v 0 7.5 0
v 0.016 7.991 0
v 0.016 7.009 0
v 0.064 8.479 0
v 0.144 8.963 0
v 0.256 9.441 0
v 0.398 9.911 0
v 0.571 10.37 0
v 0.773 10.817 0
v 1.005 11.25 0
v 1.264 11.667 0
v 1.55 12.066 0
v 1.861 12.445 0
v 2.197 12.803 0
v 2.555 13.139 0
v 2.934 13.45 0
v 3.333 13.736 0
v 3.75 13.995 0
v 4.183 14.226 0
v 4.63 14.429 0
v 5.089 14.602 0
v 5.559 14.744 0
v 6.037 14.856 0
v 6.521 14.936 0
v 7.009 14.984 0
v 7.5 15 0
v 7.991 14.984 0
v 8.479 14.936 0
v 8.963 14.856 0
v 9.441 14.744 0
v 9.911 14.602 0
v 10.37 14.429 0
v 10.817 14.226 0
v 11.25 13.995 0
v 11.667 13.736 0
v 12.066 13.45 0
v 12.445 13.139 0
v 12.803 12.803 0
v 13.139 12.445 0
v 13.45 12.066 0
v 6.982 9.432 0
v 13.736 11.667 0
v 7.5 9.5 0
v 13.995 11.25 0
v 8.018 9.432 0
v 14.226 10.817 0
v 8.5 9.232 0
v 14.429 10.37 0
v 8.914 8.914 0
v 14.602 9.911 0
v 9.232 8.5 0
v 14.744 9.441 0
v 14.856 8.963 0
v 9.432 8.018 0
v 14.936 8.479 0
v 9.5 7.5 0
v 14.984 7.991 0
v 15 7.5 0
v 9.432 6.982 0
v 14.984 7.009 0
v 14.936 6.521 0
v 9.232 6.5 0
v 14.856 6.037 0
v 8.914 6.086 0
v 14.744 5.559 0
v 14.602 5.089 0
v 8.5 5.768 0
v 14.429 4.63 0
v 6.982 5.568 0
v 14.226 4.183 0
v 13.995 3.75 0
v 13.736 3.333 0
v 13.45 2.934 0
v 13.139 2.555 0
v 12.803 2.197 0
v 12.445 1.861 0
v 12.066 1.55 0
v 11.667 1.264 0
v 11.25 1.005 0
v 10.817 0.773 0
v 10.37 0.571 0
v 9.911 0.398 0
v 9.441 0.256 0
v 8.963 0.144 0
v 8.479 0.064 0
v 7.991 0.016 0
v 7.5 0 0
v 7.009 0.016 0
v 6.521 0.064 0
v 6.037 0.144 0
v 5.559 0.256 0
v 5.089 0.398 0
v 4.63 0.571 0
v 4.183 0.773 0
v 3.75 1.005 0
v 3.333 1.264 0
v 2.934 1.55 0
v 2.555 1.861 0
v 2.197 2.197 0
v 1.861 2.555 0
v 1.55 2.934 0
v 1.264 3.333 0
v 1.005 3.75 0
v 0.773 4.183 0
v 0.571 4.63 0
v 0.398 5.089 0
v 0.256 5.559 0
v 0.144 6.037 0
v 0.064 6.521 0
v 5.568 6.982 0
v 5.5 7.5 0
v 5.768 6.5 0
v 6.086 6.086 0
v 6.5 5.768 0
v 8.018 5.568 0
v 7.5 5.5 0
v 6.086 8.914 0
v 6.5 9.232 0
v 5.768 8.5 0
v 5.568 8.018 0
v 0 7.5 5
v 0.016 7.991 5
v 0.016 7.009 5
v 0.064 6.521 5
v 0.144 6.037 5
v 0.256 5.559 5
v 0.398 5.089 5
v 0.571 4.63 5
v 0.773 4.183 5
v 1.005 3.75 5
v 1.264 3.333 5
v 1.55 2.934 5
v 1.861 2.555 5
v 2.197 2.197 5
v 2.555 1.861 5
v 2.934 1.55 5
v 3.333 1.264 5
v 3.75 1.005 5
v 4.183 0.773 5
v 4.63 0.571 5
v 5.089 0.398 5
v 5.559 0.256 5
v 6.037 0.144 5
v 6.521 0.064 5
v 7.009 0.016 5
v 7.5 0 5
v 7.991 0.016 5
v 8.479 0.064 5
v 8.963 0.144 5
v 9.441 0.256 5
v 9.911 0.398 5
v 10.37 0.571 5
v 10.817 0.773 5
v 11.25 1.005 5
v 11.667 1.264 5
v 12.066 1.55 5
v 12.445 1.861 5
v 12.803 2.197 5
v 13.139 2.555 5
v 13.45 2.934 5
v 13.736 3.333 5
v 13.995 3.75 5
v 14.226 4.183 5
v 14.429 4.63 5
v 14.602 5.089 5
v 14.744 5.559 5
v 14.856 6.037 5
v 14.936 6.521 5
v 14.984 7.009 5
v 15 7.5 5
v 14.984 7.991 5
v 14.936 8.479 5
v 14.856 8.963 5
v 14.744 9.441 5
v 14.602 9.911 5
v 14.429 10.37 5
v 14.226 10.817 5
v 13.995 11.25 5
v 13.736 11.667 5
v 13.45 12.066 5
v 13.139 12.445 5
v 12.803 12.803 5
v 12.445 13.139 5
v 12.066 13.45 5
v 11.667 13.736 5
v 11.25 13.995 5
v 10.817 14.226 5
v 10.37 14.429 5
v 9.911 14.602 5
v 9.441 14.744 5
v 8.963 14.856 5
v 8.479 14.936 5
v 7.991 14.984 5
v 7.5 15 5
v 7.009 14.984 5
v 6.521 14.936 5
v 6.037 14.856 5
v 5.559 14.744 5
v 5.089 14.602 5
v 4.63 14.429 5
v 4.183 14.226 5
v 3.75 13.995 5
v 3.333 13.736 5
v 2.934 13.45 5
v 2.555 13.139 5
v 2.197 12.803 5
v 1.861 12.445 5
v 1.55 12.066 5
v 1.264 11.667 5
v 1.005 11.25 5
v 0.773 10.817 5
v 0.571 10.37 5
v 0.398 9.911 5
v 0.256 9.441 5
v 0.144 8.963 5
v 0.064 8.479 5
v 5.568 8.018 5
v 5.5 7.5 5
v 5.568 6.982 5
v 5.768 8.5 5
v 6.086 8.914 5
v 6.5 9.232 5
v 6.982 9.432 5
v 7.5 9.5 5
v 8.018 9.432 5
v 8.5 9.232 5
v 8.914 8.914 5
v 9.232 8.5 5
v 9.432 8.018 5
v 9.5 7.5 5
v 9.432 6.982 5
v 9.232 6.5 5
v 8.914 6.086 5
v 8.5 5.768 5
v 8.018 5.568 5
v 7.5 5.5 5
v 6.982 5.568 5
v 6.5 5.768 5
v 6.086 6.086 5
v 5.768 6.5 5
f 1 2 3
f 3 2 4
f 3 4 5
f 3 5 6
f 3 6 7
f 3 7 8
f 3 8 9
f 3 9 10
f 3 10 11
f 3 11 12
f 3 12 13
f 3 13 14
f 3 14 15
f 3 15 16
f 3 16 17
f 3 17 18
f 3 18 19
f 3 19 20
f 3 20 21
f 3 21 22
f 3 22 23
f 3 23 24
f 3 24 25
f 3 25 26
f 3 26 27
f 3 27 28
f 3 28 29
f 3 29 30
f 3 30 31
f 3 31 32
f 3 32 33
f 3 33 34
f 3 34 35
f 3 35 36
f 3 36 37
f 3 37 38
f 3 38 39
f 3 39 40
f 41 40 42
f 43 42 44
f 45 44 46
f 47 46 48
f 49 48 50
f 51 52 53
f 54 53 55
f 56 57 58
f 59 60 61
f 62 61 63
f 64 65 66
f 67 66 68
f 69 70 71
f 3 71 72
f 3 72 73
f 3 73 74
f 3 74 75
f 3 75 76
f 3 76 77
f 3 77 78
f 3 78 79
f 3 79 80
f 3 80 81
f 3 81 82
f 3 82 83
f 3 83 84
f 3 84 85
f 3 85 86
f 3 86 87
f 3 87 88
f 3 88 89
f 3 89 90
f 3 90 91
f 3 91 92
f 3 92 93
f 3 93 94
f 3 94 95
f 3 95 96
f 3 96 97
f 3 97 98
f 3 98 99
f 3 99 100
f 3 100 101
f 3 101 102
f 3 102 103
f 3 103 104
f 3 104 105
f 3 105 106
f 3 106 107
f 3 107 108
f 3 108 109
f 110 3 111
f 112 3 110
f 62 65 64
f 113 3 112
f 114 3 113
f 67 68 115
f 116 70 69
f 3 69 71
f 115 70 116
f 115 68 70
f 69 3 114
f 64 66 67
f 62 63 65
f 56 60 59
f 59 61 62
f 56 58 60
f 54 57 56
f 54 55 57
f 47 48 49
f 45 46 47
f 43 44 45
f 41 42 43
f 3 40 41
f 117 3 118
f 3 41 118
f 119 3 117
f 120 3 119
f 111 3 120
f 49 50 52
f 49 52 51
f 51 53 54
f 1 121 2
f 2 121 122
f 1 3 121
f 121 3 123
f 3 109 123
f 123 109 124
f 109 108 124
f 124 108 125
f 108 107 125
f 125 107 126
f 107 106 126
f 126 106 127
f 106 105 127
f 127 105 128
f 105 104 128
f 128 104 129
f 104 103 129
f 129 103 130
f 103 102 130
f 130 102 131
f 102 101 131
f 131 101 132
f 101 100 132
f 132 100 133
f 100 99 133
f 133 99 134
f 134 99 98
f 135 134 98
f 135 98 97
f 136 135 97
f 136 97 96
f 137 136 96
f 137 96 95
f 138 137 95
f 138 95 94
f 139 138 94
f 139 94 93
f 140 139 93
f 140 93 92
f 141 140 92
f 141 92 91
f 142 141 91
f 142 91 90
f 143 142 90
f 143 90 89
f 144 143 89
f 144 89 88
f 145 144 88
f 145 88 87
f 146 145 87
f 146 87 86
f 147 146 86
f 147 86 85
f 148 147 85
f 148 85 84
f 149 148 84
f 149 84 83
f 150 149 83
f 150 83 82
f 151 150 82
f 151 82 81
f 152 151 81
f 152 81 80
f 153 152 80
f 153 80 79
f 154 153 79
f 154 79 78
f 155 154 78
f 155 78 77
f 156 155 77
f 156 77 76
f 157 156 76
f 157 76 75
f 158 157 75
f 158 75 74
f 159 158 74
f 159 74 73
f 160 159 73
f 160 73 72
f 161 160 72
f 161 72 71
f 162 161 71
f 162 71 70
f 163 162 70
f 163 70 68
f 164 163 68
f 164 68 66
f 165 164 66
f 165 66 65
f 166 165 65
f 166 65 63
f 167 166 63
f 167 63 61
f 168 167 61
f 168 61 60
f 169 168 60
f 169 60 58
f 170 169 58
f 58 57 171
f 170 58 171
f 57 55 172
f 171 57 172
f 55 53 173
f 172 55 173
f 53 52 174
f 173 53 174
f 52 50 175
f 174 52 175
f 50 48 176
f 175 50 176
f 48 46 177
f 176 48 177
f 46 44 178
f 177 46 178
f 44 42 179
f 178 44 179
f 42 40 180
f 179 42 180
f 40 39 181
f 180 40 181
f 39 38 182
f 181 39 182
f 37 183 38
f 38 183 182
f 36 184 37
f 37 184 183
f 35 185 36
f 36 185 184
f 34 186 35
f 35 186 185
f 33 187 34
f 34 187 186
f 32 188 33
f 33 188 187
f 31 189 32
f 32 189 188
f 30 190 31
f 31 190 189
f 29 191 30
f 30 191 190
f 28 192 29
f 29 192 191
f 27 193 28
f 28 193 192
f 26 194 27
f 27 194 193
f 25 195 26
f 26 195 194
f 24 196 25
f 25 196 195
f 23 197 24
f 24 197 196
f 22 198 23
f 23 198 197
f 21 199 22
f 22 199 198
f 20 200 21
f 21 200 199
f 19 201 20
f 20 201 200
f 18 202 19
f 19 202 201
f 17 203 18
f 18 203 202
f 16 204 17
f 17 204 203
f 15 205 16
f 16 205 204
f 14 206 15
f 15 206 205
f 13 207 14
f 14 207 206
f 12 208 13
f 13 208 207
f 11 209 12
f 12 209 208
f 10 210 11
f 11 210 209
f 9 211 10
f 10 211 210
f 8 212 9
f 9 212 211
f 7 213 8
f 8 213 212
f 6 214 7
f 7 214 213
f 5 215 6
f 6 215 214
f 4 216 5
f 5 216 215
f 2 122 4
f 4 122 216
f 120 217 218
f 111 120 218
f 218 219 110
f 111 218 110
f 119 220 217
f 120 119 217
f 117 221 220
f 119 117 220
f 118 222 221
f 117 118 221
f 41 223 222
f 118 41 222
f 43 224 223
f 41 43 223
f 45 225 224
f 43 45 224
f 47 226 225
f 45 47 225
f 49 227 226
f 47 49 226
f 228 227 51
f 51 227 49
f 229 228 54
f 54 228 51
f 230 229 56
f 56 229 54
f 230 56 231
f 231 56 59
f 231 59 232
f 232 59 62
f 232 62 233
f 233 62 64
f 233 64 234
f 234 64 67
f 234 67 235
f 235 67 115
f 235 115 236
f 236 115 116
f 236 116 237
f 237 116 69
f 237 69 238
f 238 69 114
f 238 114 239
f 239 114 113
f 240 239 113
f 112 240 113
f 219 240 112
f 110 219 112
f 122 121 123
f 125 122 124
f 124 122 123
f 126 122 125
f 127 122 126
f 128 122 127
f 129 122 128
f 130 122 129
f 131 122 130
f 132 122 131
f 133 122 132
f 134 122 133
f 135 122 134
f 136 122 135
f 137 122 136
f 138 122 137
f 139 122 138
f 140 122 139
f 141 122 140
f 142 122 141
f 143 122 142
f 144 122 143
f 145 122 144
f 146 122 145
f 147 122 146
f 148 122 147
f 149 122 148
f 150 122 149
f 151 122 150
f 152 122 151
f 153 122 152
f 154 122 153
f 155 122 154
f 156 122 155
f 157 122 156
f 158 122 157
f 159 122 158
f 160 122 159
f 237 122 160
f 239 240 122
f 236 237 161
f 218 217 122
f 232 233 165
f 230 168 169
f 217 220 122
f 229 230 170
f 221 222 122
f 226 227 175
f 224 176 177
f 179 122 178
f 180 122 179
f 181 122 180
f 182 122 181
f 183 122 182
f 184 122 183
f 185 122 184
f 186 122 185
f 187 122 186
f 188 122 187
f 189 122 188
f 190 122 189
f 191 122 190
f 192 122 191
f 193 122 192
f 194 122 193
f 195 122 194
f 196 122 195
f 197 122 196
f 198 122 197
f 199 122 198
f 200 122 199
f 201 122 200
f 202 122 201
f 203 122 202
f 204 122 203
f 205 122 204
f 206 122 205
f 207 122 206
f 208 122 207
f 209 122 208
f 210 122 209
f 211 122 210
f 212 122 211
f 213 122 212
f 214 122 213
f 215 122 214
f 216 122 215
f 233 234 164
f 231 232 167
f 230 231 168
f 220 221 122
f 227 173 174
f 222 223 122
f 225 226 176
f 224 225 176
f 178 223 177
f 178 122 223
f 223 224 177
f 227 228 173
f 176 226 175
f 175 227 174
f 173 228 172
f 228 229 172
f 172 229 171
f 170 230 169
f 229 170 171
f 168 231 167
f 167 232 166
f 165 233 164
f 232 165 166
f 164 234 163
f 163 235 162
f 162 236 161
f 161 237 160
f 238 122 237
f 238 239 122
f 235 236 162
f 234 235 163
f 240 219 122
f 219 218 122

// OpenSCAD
// file: epiphany-parameters.scad
// Epiphany Cluster Fan Cooling 3D Design

// Copyright (c) 2014 by Jeremy Bennett <jeremy.bennett@embecosm.com>

// Epiphany Cluster Fan Cooling 3D Design is licensed under a Creative Commons
// Attribution-ShareAlike 3.0 Unported License.

// You should have received a copy of the license along with this work.  If not, 
// see <http://creativecommons.org/licenses/by-sa/3.0/>.

// -----------------------------------------------------------------------------

// Constants defining the fan base for Epiphany Cluster fan cooling

// Cluster boards are 86mm x 54mm. Mounting holes 3mm on the center of 6mm pads
// in each corner.

// The entire stack is 123mm to base of top layer.

// Fans are 120mm x 120mm x 25mm, with mounting hole centers 105mm apart in each
// corner.

// The fans are lifted 15mm from the base position, since there is no need to
// blow under the bottom board, while there is a need to blow across the top
// board.

FAN_DIAMETER = 120;				// Overall diameter of the fan.
FAN_THICKNESS = 25;				// Overall thickness of the fan
FAN_HOLE_OFFSET = 7.5;			// How far mounting holes centers are in from base
FAN_HOLE_DIAMETER = 4;			// Diameter of mounting holes
FAN_ELEVATION = 15;				// How far we lift fan from base of stack
LUG_INNER_THICKNESS = 5;		// Inner lug thickness (must sink screw head)
LUG_OUTER_THICKNESS = 5;		// Outer lug thickness
SCREW_HEAD_THICKNESS = 3;		// How deep to sink screw head
SCREW_HEAD_DIAMETER = 9;		// How wide is screw head
BOARD_WIDTH = 54;				// Width of parallella board
BOARD_LENGTH = 86;				// Length of parallella board
BOARD_HOLE_DIAMETER = 3.2;		// Diameter of parallella mounting holes (with play)
PAD_WIDTH = 6;					// Width (and length) of pad with mounting holes
BASE_THICKNESS = 5;				// Thickness of the main base
BASE_SCREW_HEAD_DIAMETER = 7;	// Screws holding base
BASE_SCREW_HEAD_THICKNESS = 3;// How deep to sink screw

// Useful derived constants
LUG_TOTAL_THICKNESS = LUG_INNER_THICKNESS + LUG_OUTER_THICKNESS;
X_OFF_1 = (FAN_DIAMETER - BOARD_LENGTH) / 2;
X_OFF_2 = (FAN_DIAMETER + BOARD_LENGTH) / 2;
X_OFF_3 = FAN_DIAMETER;
Y_OFF_1 = FAN_THICKNESS + LUG_TOTAL_THICKNESS;
Y_OFF_2 = Y_OFF_1 + BOARD_WIDTH;
Y_OFF_3 = Y_OFF_1 * 2 + BOARD_WIDTH;
PAD_OFF_1 = (PAD_WIDTH) / 2;
PAD_OFF_2 = 6 - (PAD_WIDTH) / 2;
// main file
// Epiphany Cluster Fan Cooling 3D Design

// Copyright (c) 2014 by Jeremy Bennett <jeremy.bennett@embecosm.com>

// Epiphany Cluster Fan Cooling 3D Design is licensed under a Creative Commons
// Attribution-ShareAlike 3.0 Unported License.

// You should have received a copy of the license along with this work.  If not, 
// see <http://creativecommons.org/licenses/by-sa/3.0/>.

// -----------------------------------------------------------------------------

// Spacer washer for epiphany fan base. This is needed if you have a cage over
// your fan to match the lugs on the base (you'll need four).

include <epiphany-core.scad>				// The main module definitions
include <epiphany-parameters.scad>		// Parameters defining this base


// The design for the spacer

echo (LUG_OUTER_THICKNESS);
spacer (LUG_OUTER_THICKNESS);
